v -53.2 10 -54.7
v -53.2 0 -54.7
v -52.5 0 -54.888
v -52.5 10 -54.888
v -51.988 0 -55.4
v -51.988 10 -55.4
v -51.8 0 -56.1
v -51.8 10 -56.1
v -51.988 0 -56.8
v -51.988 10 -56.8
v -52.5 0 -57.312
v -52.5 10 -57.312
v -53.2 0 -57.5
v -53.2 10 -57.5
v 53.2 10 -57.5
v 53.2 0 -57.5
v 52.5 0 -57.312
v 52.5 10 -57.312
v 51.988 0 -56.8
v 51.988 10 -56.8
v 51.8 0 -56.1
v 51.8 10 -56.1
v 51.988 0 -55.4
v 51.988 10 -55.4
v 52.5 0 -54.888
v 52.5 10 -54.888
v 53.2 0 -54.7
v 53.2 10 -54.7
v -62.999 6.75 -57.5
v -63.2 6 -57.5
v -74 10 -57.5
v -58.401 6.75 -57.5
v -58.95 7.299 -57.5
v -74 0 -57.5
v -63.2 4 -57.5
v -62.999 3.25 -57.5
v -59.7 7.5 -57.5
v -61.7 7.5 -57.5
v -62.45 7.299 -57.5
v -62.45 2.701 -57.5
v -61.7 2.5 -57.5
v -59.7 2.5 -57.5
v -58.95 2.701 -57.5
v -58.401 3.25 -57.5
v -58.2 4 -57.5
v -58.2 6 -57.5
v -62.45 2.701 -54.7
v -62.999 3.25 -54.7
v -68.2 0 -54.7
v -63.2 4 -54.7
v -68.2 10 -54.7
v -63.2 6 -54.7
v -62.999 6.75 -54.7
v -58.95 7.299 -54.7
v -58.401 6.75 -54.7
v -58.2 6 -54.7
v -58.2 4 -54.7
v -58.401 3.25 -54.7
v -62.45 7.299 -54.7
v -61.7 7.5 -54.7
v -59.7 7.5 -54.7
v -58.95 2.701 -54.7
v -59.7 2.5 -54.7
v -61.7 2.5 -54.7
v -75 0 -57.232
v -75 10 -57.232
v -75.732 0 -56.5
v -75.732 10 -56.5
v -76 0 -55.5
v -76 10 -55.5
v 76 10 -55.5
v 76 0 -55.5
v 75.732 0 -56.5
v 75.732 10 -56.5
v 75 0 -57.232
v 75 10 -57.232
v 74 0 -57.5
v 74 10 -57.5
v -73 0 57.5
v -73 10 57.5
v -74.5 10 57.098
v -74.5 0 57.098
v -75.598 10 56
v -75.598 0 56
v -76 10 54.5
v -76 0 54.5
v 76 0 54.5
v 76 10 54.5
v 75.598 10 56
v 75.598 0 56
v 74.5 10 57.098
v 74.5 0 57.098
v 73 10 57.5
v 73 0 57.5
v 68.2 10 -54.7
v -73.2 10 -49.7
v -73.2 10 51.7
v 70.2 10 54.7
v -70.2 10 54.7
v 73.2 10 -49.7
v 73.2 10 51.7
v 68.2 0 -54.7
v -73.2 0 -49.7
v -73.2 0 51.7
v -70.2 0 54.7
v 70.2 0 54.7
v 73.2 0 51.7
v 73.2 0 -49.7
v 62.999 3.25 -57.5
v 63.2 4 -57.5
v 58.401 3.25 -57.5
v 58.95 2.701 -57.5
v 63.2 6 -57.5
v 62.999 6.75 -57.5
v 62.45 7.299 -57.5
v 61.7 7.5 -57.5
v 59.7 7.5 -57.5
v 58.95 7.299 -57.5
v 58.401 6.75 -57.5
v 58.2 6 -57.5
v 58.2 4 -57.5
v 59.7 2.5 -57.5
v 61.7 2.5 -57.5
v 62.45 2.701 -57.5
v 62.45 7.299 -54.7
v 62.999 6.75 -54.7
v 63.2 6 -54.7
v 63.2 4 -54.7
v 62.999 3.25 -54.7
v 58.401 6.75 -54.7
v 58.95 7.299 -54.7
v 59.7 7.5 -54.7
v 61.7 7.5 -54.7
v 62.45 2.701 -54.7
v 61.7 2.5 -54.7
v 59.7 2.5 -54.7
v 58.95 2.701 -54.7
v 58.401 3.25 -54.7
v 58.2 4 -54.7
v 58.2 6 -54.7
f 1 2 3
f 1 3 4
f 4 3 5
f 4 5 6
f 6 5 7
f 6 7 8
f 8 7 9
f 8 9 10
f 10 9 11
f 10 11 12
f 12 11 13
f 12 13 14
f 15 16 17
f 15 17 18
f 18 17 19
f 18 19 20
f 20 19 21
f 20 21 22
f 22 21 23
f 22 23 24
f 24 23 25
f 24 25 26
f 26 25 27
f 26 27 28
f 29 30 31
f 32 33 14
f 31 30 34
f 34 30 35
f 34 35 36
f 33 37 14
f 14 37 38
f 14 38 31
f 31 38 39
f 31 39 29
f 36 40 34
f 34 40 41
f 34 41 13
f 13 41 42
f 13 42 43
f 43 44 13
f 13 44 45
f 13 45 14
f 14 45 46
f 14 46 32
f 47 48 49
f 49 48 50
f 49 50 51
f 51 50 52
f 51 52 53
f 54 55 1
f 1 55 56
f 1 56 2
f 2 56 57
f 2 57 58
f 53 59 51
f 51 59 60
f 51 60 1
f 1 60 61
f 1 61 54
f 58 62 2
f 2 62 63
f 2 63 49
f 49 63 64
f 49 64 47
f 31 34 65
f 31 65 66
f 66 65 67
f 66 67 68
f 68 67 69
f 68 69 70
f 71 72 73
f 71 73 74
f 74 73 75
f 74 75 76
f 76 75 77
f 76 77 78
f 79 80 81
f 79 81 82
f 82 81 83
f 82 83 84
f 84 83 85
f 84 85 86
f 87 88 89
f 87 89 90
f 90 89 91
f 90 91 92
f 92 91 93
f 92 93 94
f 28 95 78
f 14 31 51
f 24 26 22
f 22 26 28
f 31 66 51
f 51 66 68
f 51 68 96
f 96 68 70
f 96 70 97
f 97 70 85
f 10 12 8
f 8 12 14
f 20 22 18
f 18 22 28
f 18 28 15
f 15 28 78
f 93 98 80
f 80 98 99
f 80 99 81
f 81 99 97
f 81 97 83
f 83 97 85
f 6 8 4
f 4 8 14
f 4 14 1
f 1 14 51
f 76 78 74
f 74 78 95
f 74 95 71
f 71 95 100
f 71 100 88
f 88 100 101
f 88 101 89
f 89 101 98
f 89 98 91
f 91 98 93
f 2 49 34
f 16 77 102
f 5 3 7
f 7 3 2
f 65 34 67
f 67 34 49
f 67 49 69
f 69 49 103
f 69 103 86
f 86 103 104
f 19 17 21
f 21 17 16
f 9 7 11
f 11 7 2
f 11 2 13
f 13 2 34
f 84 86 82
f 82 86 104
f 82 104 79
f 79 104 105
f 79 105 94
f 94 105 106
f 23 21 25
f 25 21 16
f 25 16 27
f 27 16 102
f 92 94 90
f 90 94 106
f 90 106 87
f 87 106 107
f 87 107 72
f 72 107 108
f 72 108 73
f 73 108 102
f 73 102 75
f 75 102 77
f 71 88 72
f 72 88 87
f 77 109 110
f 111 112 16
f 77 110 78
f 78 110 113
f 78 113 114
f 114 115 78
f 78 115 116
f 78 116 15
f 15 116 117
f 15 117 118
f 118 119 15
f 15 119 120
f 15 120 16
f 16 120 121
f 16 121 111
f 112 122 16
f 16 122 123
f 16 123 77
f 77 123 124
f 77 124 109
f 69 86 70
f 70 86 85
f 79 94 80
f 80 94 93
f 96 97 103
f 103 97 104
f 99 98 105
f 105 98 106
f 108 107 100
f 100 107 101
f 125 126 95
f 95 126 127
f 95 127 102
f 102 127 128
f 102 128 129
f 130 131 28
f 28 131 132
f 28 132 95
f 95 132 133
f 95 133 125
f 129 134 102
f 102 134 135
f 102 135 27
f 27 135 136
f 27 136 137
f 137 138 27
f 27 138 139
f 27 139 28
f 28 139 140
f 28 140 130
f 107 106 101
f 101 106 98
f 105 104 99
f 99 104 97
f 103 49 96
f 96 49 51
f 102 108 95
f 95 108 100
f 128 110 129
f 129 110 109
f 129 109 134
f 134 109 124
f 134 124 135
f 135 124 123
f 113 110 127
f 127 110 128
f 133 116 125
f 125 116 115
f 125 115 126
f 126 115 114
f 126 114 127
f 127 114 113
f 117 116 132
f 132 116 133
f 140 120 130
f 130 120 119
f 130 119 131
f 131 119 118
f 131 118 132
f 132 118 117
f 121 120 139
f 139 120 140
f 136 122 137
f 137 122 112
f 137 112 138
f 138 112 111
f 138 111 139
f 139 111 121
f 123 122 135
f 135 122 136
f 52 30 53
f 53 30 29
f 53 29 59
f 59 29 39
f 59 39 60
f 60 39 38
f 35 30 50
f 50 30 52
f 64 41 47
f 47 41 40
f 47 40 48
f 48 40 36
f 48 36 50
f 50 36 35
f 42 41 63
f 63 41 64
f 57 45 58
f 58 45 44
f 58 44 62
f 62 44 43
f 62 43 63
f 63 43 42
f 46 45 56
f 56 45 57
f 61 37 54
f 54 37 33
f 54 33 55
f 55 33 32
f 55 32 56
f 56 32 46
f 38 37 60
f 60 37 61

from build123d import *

# Parameters (mm, degrees)
ESBO_O1_W      = 152
ESBO_O1_H      = 115
ESBO_O1_W_2    = 146.4
ESBO_O1_H_2    = 109.4
PAREDES_DEPTH  = 10
FILETE1_R      = 3
FILETE2_R      = 3
FILETE3_R      = 2
FILETE4_R      = 2
CHANFRO1_SIZE  = 3
CHANFRO2_SIZE  = 3
CHANFRO3_SIZE  = 5
CHANFRO4_SIZE  = 5
ESBO_O3_W      = 103.6
ESBO_O3_H      = 10
CORTES_DEPTH   = 10
FILETE7_RADIUS = 1.4
FILETE7_LENGTH = 10
FILETE8_RADIUS = 1.4
FILETE8_LENGTH = 10


with BuildPart() as part:
    # Esboço1 → Paredes (new body)
    with BuildSketch(Plane(origin=(0, 0, 0), x_dir=(1, 0, 0), z_dir=(0, 1, 0))):
        Rectangle(ESBO_O1_W, ESBO_O1_H)
        Rectangle(ESBO_O1_W_2, ESBO_O1_H_2, mode=Mode.SUBTRACT)
    extrude(amount=PAREDES_DEPTH)

    # Filete1
    filete1_edges = [part.edges().sort_by_distance(p)[0] for p in [
        (76, 5, 57.5),
    ]]
    fillet(filete1_edges, radius=FILETE1_R)

    # Filete2
    filete2_edges = [part.edges().sort_by_distance(p)[0] for p in [
        (-76, 5, 57.5),
    ]]
    fillet(filete2_edges, radius=FILETE2_R)

    # Filete3
    filete3_edges = [part.edges().sort_by_distance(p)[0] for p in [
        (76, 5, -57.5),
    ]]
    fillet(filete3_edges, radius=FILETE3_R)

    # Filete4
    filete4_edges = [part.edges().sort_by_distance(p)[0] for p in [
        (-76, 5, -57.5),
    ]]
    fillet(filete4_edges, radius=FILETE4_R)

    # Chanfro1
    chanfro1_edges = [part.edges().sort_by_distance(p)[0] for p in [
        (73.2, 5, 54.7),
    ]]
    chamfer(chanfro1_edges, length=CHANFRO1_SIZE)

    # Chanfro2
    chanfro2_edges = [part.edges().sort_by_distance(p)[0] for p in [
        (-73.2, 5, 54.7),
    ]]
    chamfer(chanfro2_edges, length=CHANFRO2_SIZE)

    # Chanfro3
    chanfro3_edges = [part.edges().sort_by_distance(p)[0] for p in [
        (-73.2, 5, -54.7),
    ]]
    chamfer(chanfro3_edges, length=CHANFRO3_SIZE)

    # Chanfro4
    chanfro4_edges = [part.edges().sort_by_distance(p)[0] for p in [
        (73.2, 5, -54.7),
    ]]
    chamfer(chanfro4_edges, length=CHANFRO4_SIZE)

    # Esboço3 → Cortes (cut)
    with BuildSketch(Plane(origin=(0, 0, -57.5), x_dir=(-1, 0, 0), z_dir=(0, 0, -1))):
        with BuildLine():
            Line((63.2, 6), (63.2, 4))
            ThreePointArc((63.2, 4), (62.760660172, 2.939339828), (61.7, 2.5))
            Line((61.7, 2.5), (59.7, 2.5))
            ThreePointArc((59.7, 2.5), (58.639339828, 2.939339828), (58.2, 4))
            Line((58.2, 4), (58.2, 6))
            ThreePointArc((58.2, 6), (58.639339828, 7.060660172), (59.7, 7.5))
            Line((59.7, 7.5), (61.7, 7.5))
            ThreePointArc((61.7, 7.5), (62.760660172, 7.060660172), (63.2, 6))
        make_face()
        with BuildLine():
            Line((-61.7, 7.5), (-59.7, 7.5))
            ThreePointArc((-59.7, 7.5), (-58.639339828, 7.060660172), (-58.2, 6))
            Line((-58.2, 6), (-58.2, 4))
            ThreePointArc((-58.2, 4), (-58.639339828, 2.939339828), (-59.7, 2.5))
            Line((-59.7, 2.5), (-61.7, 2.5))
            ThreePointArc((-61.7, 2.5), (-62.760660172, 2.939339828), (-63.2, 4))
            Line((-63.2, 4), (-63.2, 6))
            ThreePointArc((-63.2, 6), (-62.760660172, 7.060660172), (-61.7, 7.5))
        make_face()
        with Locations((0, 5)):
            Rectangle(ESBO_O3_W, ESBO_O3_H)
    extrude(amount=-CORTES_DEPTH, mode=Mode.SUBTRACT)

    # Filete7: full round fillet: the end face becomes a half cylinder, R = half its width
    filete7_face = Plane((51.8, 5, -56.1), x_dir=(0, 1, 0), z_dir=(-1, 0, 0))  # on the end face: x along it, z out of the body
    filete7_slab = filete7_face.offset(-FILETE7_RADIUS / 2) * Box(FILETE7_LENGTH, 2 * FILETE7_RADIUS, FILETE7_RADIUS, mode=Mode.PRIVATE)  # the body's end, R deep
    filete7_round = Plane((53.2, 5, -56.1), x_dir=(-1, 0, 0), z_dir=(0, 1, 0)) * Cylinder(FILETE7_RADIUS, FILETE7_LENGTH, mode=Mode.PRIVATE)  # its axis R under the face
    add(filete7_slab - filete7_round, mode=Mode.SUBTRACT)

    # Filete8: full round fillet: the end face becomes a half cylinder, R = half its width
    filete8_face = Plane((-51.8, 5, -56.1), x_dir=(0, -1, 0), z_dir=(1, 0, 0))  # on the end face: x along it, z out of the body
    filete8_slab = filete8_face.offset(-FILETE8_RADIUS / 2) * Box(FILETE8_LENGTH, 2 * FILETE8_RADIUS, FILETE8_RADIUS, mode=Mode.PRIVATE)  # the body's end, R deep
    filete8_round = Plane((-53.2, 5, -56.1), x_dir=(1, 0, 0), z_dir=(0, -1, 0)) * Cylinder(FILETE8_RADIUS, FILETE8_LENGTH, mode=Mode.PRIVATE)  # its axis R under the face
    add(filete8_slab - filete8_round, mode=Mode.SUBTRACT)


solid = part.part
